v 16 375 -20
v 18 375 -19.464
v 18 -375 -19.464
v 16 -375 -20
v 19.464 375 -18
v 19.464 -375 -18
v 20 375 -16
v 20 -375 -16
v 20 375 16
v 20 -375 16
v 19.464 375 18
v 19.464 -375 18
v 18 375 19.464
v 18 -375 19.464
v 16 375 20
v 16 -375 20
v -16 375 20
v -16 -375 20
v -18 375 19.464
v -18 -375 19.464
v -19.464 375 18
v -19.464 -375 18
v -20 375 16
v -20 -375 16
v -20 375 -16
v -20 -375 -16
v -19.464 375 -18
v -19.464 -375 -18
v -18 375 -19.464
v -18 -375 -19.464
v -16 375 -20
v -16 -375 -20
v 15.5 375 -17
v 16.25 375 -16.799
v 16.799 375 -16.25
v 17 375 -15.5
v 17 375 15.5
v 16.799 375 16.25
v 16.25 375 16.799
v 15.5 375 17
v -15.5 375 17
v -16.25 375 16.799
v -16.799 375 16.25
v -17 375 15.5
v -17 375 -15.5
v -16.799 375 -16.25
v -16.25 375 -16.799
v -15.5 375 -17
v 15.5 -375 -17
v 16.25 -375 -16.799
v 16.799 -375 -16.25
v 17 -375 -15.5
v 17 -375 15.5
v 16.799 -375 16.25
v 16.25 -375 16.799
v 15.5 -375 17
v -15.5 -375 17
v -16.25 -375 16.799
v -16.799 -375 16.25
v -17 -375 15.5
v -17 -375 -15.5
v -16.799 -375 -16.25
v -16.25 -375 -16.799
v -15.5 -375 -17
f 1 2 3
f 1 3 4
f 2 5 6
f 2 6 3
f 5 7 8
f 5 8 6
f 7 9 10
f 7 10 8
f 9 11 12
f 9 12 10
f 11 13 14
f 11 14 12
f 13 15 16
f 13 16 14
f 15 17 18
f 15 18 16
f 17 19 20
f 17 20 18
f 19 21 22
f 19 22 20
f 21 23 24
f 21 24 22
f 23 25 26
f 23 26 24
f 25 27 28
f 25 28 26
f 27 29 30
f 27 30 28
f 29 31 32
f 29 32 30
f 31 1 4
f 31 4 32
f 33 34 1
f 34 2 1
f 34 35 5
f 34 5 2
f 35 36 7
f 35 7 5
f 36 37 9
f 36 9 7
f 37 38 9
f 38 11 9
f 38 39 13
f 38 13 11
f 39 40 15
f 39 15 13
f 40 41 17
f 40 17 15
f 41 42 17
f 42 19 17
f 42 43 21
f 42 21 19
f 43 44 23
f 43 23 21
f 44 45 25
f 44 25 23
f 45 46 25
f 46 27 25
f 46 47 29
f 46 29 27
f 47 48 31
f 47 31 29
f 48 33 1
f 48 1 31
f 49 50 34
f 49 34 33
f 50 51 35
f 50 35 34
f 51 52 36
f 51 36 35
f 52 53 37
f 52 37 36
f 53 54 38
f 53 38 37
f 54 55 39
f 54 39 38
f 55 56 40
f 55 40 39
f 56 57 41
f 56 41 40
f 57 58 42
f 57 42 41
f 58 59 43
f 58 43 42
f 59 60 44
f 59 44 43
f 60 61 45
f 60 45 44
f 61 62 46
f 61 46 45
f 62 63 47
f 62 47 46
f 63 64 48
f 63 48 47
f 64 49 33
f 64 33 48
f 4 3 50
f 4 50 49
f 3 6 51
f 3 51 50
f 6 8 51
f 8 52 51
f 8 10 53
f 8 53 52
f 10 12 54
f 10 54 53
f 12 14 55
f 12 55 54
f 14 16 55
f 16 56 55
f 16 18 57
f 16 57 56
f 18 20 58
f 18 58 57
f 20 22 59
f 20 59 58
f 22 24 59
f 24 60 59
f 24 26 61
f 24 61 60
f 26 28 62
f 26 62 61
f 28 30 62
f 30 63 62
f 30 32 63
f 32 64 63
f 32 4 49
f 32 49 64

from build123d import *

# Parameters (mm, degrees)
EXTRUDE_START   = -375
EXTRUDE_1_DEPTH = 750


with BuildPart() as part:
    # Extrude sketch 1 → Extrude 1 (new body)
    with BuildSketch(Plane(origin=(0, 0, 0), x_dir=(1, 0, 0), z_dir=(0, 1, 0)).offset(EXTRUDE_START)):
        with BuildLine():
            Line((20, 16), (20, -16))
            ThreePointArc((20, -16), (18.828427125, -18.828427125), (16, -20))
            Line((16, -20), (-16, -20))
            ThreePointArc((-16, -20), (-18.828427125, -18.828427125), (-20, -16))
            Line((-20, -16), (-20, 16))
            ThreePointArc((-20, 16), (-18.828427125, 18.828427125), (-16, 20))
            Line((-16, 20), (16, 20))
            ThreePointArc((16, 20), (18.828427125, 18.828427125), (20, 16))
        make_face()
        with BuildLine():
            Line((17, 15.5), (17, -15.5))
            ThreePointArc((17, -15.5), (16.560660172, -16.560660172), (15.5, -17))
            Line((15.5, -17), (-15.5, -17))
            ThreePointArc((-15.5, -17), (-16.560660172, -16.560660172), (-17, -15.5))
            Line((-17, -15.5), (-17, 15.5))
            ThreePointArc((-17, 15.5), (-16.560660172, 16.560660172), (-15.5, 17))
            Line((-15.5, 17), (15.5, 17))
            ThreePointArc((15.5, 17), (16.560660172, 16.560660172), (17, 15.5))
        make_face(mode=Mode.SUBTRACT)
    extrude(amount=EXTRUDE_1_DEPTH)


solid = part.part
